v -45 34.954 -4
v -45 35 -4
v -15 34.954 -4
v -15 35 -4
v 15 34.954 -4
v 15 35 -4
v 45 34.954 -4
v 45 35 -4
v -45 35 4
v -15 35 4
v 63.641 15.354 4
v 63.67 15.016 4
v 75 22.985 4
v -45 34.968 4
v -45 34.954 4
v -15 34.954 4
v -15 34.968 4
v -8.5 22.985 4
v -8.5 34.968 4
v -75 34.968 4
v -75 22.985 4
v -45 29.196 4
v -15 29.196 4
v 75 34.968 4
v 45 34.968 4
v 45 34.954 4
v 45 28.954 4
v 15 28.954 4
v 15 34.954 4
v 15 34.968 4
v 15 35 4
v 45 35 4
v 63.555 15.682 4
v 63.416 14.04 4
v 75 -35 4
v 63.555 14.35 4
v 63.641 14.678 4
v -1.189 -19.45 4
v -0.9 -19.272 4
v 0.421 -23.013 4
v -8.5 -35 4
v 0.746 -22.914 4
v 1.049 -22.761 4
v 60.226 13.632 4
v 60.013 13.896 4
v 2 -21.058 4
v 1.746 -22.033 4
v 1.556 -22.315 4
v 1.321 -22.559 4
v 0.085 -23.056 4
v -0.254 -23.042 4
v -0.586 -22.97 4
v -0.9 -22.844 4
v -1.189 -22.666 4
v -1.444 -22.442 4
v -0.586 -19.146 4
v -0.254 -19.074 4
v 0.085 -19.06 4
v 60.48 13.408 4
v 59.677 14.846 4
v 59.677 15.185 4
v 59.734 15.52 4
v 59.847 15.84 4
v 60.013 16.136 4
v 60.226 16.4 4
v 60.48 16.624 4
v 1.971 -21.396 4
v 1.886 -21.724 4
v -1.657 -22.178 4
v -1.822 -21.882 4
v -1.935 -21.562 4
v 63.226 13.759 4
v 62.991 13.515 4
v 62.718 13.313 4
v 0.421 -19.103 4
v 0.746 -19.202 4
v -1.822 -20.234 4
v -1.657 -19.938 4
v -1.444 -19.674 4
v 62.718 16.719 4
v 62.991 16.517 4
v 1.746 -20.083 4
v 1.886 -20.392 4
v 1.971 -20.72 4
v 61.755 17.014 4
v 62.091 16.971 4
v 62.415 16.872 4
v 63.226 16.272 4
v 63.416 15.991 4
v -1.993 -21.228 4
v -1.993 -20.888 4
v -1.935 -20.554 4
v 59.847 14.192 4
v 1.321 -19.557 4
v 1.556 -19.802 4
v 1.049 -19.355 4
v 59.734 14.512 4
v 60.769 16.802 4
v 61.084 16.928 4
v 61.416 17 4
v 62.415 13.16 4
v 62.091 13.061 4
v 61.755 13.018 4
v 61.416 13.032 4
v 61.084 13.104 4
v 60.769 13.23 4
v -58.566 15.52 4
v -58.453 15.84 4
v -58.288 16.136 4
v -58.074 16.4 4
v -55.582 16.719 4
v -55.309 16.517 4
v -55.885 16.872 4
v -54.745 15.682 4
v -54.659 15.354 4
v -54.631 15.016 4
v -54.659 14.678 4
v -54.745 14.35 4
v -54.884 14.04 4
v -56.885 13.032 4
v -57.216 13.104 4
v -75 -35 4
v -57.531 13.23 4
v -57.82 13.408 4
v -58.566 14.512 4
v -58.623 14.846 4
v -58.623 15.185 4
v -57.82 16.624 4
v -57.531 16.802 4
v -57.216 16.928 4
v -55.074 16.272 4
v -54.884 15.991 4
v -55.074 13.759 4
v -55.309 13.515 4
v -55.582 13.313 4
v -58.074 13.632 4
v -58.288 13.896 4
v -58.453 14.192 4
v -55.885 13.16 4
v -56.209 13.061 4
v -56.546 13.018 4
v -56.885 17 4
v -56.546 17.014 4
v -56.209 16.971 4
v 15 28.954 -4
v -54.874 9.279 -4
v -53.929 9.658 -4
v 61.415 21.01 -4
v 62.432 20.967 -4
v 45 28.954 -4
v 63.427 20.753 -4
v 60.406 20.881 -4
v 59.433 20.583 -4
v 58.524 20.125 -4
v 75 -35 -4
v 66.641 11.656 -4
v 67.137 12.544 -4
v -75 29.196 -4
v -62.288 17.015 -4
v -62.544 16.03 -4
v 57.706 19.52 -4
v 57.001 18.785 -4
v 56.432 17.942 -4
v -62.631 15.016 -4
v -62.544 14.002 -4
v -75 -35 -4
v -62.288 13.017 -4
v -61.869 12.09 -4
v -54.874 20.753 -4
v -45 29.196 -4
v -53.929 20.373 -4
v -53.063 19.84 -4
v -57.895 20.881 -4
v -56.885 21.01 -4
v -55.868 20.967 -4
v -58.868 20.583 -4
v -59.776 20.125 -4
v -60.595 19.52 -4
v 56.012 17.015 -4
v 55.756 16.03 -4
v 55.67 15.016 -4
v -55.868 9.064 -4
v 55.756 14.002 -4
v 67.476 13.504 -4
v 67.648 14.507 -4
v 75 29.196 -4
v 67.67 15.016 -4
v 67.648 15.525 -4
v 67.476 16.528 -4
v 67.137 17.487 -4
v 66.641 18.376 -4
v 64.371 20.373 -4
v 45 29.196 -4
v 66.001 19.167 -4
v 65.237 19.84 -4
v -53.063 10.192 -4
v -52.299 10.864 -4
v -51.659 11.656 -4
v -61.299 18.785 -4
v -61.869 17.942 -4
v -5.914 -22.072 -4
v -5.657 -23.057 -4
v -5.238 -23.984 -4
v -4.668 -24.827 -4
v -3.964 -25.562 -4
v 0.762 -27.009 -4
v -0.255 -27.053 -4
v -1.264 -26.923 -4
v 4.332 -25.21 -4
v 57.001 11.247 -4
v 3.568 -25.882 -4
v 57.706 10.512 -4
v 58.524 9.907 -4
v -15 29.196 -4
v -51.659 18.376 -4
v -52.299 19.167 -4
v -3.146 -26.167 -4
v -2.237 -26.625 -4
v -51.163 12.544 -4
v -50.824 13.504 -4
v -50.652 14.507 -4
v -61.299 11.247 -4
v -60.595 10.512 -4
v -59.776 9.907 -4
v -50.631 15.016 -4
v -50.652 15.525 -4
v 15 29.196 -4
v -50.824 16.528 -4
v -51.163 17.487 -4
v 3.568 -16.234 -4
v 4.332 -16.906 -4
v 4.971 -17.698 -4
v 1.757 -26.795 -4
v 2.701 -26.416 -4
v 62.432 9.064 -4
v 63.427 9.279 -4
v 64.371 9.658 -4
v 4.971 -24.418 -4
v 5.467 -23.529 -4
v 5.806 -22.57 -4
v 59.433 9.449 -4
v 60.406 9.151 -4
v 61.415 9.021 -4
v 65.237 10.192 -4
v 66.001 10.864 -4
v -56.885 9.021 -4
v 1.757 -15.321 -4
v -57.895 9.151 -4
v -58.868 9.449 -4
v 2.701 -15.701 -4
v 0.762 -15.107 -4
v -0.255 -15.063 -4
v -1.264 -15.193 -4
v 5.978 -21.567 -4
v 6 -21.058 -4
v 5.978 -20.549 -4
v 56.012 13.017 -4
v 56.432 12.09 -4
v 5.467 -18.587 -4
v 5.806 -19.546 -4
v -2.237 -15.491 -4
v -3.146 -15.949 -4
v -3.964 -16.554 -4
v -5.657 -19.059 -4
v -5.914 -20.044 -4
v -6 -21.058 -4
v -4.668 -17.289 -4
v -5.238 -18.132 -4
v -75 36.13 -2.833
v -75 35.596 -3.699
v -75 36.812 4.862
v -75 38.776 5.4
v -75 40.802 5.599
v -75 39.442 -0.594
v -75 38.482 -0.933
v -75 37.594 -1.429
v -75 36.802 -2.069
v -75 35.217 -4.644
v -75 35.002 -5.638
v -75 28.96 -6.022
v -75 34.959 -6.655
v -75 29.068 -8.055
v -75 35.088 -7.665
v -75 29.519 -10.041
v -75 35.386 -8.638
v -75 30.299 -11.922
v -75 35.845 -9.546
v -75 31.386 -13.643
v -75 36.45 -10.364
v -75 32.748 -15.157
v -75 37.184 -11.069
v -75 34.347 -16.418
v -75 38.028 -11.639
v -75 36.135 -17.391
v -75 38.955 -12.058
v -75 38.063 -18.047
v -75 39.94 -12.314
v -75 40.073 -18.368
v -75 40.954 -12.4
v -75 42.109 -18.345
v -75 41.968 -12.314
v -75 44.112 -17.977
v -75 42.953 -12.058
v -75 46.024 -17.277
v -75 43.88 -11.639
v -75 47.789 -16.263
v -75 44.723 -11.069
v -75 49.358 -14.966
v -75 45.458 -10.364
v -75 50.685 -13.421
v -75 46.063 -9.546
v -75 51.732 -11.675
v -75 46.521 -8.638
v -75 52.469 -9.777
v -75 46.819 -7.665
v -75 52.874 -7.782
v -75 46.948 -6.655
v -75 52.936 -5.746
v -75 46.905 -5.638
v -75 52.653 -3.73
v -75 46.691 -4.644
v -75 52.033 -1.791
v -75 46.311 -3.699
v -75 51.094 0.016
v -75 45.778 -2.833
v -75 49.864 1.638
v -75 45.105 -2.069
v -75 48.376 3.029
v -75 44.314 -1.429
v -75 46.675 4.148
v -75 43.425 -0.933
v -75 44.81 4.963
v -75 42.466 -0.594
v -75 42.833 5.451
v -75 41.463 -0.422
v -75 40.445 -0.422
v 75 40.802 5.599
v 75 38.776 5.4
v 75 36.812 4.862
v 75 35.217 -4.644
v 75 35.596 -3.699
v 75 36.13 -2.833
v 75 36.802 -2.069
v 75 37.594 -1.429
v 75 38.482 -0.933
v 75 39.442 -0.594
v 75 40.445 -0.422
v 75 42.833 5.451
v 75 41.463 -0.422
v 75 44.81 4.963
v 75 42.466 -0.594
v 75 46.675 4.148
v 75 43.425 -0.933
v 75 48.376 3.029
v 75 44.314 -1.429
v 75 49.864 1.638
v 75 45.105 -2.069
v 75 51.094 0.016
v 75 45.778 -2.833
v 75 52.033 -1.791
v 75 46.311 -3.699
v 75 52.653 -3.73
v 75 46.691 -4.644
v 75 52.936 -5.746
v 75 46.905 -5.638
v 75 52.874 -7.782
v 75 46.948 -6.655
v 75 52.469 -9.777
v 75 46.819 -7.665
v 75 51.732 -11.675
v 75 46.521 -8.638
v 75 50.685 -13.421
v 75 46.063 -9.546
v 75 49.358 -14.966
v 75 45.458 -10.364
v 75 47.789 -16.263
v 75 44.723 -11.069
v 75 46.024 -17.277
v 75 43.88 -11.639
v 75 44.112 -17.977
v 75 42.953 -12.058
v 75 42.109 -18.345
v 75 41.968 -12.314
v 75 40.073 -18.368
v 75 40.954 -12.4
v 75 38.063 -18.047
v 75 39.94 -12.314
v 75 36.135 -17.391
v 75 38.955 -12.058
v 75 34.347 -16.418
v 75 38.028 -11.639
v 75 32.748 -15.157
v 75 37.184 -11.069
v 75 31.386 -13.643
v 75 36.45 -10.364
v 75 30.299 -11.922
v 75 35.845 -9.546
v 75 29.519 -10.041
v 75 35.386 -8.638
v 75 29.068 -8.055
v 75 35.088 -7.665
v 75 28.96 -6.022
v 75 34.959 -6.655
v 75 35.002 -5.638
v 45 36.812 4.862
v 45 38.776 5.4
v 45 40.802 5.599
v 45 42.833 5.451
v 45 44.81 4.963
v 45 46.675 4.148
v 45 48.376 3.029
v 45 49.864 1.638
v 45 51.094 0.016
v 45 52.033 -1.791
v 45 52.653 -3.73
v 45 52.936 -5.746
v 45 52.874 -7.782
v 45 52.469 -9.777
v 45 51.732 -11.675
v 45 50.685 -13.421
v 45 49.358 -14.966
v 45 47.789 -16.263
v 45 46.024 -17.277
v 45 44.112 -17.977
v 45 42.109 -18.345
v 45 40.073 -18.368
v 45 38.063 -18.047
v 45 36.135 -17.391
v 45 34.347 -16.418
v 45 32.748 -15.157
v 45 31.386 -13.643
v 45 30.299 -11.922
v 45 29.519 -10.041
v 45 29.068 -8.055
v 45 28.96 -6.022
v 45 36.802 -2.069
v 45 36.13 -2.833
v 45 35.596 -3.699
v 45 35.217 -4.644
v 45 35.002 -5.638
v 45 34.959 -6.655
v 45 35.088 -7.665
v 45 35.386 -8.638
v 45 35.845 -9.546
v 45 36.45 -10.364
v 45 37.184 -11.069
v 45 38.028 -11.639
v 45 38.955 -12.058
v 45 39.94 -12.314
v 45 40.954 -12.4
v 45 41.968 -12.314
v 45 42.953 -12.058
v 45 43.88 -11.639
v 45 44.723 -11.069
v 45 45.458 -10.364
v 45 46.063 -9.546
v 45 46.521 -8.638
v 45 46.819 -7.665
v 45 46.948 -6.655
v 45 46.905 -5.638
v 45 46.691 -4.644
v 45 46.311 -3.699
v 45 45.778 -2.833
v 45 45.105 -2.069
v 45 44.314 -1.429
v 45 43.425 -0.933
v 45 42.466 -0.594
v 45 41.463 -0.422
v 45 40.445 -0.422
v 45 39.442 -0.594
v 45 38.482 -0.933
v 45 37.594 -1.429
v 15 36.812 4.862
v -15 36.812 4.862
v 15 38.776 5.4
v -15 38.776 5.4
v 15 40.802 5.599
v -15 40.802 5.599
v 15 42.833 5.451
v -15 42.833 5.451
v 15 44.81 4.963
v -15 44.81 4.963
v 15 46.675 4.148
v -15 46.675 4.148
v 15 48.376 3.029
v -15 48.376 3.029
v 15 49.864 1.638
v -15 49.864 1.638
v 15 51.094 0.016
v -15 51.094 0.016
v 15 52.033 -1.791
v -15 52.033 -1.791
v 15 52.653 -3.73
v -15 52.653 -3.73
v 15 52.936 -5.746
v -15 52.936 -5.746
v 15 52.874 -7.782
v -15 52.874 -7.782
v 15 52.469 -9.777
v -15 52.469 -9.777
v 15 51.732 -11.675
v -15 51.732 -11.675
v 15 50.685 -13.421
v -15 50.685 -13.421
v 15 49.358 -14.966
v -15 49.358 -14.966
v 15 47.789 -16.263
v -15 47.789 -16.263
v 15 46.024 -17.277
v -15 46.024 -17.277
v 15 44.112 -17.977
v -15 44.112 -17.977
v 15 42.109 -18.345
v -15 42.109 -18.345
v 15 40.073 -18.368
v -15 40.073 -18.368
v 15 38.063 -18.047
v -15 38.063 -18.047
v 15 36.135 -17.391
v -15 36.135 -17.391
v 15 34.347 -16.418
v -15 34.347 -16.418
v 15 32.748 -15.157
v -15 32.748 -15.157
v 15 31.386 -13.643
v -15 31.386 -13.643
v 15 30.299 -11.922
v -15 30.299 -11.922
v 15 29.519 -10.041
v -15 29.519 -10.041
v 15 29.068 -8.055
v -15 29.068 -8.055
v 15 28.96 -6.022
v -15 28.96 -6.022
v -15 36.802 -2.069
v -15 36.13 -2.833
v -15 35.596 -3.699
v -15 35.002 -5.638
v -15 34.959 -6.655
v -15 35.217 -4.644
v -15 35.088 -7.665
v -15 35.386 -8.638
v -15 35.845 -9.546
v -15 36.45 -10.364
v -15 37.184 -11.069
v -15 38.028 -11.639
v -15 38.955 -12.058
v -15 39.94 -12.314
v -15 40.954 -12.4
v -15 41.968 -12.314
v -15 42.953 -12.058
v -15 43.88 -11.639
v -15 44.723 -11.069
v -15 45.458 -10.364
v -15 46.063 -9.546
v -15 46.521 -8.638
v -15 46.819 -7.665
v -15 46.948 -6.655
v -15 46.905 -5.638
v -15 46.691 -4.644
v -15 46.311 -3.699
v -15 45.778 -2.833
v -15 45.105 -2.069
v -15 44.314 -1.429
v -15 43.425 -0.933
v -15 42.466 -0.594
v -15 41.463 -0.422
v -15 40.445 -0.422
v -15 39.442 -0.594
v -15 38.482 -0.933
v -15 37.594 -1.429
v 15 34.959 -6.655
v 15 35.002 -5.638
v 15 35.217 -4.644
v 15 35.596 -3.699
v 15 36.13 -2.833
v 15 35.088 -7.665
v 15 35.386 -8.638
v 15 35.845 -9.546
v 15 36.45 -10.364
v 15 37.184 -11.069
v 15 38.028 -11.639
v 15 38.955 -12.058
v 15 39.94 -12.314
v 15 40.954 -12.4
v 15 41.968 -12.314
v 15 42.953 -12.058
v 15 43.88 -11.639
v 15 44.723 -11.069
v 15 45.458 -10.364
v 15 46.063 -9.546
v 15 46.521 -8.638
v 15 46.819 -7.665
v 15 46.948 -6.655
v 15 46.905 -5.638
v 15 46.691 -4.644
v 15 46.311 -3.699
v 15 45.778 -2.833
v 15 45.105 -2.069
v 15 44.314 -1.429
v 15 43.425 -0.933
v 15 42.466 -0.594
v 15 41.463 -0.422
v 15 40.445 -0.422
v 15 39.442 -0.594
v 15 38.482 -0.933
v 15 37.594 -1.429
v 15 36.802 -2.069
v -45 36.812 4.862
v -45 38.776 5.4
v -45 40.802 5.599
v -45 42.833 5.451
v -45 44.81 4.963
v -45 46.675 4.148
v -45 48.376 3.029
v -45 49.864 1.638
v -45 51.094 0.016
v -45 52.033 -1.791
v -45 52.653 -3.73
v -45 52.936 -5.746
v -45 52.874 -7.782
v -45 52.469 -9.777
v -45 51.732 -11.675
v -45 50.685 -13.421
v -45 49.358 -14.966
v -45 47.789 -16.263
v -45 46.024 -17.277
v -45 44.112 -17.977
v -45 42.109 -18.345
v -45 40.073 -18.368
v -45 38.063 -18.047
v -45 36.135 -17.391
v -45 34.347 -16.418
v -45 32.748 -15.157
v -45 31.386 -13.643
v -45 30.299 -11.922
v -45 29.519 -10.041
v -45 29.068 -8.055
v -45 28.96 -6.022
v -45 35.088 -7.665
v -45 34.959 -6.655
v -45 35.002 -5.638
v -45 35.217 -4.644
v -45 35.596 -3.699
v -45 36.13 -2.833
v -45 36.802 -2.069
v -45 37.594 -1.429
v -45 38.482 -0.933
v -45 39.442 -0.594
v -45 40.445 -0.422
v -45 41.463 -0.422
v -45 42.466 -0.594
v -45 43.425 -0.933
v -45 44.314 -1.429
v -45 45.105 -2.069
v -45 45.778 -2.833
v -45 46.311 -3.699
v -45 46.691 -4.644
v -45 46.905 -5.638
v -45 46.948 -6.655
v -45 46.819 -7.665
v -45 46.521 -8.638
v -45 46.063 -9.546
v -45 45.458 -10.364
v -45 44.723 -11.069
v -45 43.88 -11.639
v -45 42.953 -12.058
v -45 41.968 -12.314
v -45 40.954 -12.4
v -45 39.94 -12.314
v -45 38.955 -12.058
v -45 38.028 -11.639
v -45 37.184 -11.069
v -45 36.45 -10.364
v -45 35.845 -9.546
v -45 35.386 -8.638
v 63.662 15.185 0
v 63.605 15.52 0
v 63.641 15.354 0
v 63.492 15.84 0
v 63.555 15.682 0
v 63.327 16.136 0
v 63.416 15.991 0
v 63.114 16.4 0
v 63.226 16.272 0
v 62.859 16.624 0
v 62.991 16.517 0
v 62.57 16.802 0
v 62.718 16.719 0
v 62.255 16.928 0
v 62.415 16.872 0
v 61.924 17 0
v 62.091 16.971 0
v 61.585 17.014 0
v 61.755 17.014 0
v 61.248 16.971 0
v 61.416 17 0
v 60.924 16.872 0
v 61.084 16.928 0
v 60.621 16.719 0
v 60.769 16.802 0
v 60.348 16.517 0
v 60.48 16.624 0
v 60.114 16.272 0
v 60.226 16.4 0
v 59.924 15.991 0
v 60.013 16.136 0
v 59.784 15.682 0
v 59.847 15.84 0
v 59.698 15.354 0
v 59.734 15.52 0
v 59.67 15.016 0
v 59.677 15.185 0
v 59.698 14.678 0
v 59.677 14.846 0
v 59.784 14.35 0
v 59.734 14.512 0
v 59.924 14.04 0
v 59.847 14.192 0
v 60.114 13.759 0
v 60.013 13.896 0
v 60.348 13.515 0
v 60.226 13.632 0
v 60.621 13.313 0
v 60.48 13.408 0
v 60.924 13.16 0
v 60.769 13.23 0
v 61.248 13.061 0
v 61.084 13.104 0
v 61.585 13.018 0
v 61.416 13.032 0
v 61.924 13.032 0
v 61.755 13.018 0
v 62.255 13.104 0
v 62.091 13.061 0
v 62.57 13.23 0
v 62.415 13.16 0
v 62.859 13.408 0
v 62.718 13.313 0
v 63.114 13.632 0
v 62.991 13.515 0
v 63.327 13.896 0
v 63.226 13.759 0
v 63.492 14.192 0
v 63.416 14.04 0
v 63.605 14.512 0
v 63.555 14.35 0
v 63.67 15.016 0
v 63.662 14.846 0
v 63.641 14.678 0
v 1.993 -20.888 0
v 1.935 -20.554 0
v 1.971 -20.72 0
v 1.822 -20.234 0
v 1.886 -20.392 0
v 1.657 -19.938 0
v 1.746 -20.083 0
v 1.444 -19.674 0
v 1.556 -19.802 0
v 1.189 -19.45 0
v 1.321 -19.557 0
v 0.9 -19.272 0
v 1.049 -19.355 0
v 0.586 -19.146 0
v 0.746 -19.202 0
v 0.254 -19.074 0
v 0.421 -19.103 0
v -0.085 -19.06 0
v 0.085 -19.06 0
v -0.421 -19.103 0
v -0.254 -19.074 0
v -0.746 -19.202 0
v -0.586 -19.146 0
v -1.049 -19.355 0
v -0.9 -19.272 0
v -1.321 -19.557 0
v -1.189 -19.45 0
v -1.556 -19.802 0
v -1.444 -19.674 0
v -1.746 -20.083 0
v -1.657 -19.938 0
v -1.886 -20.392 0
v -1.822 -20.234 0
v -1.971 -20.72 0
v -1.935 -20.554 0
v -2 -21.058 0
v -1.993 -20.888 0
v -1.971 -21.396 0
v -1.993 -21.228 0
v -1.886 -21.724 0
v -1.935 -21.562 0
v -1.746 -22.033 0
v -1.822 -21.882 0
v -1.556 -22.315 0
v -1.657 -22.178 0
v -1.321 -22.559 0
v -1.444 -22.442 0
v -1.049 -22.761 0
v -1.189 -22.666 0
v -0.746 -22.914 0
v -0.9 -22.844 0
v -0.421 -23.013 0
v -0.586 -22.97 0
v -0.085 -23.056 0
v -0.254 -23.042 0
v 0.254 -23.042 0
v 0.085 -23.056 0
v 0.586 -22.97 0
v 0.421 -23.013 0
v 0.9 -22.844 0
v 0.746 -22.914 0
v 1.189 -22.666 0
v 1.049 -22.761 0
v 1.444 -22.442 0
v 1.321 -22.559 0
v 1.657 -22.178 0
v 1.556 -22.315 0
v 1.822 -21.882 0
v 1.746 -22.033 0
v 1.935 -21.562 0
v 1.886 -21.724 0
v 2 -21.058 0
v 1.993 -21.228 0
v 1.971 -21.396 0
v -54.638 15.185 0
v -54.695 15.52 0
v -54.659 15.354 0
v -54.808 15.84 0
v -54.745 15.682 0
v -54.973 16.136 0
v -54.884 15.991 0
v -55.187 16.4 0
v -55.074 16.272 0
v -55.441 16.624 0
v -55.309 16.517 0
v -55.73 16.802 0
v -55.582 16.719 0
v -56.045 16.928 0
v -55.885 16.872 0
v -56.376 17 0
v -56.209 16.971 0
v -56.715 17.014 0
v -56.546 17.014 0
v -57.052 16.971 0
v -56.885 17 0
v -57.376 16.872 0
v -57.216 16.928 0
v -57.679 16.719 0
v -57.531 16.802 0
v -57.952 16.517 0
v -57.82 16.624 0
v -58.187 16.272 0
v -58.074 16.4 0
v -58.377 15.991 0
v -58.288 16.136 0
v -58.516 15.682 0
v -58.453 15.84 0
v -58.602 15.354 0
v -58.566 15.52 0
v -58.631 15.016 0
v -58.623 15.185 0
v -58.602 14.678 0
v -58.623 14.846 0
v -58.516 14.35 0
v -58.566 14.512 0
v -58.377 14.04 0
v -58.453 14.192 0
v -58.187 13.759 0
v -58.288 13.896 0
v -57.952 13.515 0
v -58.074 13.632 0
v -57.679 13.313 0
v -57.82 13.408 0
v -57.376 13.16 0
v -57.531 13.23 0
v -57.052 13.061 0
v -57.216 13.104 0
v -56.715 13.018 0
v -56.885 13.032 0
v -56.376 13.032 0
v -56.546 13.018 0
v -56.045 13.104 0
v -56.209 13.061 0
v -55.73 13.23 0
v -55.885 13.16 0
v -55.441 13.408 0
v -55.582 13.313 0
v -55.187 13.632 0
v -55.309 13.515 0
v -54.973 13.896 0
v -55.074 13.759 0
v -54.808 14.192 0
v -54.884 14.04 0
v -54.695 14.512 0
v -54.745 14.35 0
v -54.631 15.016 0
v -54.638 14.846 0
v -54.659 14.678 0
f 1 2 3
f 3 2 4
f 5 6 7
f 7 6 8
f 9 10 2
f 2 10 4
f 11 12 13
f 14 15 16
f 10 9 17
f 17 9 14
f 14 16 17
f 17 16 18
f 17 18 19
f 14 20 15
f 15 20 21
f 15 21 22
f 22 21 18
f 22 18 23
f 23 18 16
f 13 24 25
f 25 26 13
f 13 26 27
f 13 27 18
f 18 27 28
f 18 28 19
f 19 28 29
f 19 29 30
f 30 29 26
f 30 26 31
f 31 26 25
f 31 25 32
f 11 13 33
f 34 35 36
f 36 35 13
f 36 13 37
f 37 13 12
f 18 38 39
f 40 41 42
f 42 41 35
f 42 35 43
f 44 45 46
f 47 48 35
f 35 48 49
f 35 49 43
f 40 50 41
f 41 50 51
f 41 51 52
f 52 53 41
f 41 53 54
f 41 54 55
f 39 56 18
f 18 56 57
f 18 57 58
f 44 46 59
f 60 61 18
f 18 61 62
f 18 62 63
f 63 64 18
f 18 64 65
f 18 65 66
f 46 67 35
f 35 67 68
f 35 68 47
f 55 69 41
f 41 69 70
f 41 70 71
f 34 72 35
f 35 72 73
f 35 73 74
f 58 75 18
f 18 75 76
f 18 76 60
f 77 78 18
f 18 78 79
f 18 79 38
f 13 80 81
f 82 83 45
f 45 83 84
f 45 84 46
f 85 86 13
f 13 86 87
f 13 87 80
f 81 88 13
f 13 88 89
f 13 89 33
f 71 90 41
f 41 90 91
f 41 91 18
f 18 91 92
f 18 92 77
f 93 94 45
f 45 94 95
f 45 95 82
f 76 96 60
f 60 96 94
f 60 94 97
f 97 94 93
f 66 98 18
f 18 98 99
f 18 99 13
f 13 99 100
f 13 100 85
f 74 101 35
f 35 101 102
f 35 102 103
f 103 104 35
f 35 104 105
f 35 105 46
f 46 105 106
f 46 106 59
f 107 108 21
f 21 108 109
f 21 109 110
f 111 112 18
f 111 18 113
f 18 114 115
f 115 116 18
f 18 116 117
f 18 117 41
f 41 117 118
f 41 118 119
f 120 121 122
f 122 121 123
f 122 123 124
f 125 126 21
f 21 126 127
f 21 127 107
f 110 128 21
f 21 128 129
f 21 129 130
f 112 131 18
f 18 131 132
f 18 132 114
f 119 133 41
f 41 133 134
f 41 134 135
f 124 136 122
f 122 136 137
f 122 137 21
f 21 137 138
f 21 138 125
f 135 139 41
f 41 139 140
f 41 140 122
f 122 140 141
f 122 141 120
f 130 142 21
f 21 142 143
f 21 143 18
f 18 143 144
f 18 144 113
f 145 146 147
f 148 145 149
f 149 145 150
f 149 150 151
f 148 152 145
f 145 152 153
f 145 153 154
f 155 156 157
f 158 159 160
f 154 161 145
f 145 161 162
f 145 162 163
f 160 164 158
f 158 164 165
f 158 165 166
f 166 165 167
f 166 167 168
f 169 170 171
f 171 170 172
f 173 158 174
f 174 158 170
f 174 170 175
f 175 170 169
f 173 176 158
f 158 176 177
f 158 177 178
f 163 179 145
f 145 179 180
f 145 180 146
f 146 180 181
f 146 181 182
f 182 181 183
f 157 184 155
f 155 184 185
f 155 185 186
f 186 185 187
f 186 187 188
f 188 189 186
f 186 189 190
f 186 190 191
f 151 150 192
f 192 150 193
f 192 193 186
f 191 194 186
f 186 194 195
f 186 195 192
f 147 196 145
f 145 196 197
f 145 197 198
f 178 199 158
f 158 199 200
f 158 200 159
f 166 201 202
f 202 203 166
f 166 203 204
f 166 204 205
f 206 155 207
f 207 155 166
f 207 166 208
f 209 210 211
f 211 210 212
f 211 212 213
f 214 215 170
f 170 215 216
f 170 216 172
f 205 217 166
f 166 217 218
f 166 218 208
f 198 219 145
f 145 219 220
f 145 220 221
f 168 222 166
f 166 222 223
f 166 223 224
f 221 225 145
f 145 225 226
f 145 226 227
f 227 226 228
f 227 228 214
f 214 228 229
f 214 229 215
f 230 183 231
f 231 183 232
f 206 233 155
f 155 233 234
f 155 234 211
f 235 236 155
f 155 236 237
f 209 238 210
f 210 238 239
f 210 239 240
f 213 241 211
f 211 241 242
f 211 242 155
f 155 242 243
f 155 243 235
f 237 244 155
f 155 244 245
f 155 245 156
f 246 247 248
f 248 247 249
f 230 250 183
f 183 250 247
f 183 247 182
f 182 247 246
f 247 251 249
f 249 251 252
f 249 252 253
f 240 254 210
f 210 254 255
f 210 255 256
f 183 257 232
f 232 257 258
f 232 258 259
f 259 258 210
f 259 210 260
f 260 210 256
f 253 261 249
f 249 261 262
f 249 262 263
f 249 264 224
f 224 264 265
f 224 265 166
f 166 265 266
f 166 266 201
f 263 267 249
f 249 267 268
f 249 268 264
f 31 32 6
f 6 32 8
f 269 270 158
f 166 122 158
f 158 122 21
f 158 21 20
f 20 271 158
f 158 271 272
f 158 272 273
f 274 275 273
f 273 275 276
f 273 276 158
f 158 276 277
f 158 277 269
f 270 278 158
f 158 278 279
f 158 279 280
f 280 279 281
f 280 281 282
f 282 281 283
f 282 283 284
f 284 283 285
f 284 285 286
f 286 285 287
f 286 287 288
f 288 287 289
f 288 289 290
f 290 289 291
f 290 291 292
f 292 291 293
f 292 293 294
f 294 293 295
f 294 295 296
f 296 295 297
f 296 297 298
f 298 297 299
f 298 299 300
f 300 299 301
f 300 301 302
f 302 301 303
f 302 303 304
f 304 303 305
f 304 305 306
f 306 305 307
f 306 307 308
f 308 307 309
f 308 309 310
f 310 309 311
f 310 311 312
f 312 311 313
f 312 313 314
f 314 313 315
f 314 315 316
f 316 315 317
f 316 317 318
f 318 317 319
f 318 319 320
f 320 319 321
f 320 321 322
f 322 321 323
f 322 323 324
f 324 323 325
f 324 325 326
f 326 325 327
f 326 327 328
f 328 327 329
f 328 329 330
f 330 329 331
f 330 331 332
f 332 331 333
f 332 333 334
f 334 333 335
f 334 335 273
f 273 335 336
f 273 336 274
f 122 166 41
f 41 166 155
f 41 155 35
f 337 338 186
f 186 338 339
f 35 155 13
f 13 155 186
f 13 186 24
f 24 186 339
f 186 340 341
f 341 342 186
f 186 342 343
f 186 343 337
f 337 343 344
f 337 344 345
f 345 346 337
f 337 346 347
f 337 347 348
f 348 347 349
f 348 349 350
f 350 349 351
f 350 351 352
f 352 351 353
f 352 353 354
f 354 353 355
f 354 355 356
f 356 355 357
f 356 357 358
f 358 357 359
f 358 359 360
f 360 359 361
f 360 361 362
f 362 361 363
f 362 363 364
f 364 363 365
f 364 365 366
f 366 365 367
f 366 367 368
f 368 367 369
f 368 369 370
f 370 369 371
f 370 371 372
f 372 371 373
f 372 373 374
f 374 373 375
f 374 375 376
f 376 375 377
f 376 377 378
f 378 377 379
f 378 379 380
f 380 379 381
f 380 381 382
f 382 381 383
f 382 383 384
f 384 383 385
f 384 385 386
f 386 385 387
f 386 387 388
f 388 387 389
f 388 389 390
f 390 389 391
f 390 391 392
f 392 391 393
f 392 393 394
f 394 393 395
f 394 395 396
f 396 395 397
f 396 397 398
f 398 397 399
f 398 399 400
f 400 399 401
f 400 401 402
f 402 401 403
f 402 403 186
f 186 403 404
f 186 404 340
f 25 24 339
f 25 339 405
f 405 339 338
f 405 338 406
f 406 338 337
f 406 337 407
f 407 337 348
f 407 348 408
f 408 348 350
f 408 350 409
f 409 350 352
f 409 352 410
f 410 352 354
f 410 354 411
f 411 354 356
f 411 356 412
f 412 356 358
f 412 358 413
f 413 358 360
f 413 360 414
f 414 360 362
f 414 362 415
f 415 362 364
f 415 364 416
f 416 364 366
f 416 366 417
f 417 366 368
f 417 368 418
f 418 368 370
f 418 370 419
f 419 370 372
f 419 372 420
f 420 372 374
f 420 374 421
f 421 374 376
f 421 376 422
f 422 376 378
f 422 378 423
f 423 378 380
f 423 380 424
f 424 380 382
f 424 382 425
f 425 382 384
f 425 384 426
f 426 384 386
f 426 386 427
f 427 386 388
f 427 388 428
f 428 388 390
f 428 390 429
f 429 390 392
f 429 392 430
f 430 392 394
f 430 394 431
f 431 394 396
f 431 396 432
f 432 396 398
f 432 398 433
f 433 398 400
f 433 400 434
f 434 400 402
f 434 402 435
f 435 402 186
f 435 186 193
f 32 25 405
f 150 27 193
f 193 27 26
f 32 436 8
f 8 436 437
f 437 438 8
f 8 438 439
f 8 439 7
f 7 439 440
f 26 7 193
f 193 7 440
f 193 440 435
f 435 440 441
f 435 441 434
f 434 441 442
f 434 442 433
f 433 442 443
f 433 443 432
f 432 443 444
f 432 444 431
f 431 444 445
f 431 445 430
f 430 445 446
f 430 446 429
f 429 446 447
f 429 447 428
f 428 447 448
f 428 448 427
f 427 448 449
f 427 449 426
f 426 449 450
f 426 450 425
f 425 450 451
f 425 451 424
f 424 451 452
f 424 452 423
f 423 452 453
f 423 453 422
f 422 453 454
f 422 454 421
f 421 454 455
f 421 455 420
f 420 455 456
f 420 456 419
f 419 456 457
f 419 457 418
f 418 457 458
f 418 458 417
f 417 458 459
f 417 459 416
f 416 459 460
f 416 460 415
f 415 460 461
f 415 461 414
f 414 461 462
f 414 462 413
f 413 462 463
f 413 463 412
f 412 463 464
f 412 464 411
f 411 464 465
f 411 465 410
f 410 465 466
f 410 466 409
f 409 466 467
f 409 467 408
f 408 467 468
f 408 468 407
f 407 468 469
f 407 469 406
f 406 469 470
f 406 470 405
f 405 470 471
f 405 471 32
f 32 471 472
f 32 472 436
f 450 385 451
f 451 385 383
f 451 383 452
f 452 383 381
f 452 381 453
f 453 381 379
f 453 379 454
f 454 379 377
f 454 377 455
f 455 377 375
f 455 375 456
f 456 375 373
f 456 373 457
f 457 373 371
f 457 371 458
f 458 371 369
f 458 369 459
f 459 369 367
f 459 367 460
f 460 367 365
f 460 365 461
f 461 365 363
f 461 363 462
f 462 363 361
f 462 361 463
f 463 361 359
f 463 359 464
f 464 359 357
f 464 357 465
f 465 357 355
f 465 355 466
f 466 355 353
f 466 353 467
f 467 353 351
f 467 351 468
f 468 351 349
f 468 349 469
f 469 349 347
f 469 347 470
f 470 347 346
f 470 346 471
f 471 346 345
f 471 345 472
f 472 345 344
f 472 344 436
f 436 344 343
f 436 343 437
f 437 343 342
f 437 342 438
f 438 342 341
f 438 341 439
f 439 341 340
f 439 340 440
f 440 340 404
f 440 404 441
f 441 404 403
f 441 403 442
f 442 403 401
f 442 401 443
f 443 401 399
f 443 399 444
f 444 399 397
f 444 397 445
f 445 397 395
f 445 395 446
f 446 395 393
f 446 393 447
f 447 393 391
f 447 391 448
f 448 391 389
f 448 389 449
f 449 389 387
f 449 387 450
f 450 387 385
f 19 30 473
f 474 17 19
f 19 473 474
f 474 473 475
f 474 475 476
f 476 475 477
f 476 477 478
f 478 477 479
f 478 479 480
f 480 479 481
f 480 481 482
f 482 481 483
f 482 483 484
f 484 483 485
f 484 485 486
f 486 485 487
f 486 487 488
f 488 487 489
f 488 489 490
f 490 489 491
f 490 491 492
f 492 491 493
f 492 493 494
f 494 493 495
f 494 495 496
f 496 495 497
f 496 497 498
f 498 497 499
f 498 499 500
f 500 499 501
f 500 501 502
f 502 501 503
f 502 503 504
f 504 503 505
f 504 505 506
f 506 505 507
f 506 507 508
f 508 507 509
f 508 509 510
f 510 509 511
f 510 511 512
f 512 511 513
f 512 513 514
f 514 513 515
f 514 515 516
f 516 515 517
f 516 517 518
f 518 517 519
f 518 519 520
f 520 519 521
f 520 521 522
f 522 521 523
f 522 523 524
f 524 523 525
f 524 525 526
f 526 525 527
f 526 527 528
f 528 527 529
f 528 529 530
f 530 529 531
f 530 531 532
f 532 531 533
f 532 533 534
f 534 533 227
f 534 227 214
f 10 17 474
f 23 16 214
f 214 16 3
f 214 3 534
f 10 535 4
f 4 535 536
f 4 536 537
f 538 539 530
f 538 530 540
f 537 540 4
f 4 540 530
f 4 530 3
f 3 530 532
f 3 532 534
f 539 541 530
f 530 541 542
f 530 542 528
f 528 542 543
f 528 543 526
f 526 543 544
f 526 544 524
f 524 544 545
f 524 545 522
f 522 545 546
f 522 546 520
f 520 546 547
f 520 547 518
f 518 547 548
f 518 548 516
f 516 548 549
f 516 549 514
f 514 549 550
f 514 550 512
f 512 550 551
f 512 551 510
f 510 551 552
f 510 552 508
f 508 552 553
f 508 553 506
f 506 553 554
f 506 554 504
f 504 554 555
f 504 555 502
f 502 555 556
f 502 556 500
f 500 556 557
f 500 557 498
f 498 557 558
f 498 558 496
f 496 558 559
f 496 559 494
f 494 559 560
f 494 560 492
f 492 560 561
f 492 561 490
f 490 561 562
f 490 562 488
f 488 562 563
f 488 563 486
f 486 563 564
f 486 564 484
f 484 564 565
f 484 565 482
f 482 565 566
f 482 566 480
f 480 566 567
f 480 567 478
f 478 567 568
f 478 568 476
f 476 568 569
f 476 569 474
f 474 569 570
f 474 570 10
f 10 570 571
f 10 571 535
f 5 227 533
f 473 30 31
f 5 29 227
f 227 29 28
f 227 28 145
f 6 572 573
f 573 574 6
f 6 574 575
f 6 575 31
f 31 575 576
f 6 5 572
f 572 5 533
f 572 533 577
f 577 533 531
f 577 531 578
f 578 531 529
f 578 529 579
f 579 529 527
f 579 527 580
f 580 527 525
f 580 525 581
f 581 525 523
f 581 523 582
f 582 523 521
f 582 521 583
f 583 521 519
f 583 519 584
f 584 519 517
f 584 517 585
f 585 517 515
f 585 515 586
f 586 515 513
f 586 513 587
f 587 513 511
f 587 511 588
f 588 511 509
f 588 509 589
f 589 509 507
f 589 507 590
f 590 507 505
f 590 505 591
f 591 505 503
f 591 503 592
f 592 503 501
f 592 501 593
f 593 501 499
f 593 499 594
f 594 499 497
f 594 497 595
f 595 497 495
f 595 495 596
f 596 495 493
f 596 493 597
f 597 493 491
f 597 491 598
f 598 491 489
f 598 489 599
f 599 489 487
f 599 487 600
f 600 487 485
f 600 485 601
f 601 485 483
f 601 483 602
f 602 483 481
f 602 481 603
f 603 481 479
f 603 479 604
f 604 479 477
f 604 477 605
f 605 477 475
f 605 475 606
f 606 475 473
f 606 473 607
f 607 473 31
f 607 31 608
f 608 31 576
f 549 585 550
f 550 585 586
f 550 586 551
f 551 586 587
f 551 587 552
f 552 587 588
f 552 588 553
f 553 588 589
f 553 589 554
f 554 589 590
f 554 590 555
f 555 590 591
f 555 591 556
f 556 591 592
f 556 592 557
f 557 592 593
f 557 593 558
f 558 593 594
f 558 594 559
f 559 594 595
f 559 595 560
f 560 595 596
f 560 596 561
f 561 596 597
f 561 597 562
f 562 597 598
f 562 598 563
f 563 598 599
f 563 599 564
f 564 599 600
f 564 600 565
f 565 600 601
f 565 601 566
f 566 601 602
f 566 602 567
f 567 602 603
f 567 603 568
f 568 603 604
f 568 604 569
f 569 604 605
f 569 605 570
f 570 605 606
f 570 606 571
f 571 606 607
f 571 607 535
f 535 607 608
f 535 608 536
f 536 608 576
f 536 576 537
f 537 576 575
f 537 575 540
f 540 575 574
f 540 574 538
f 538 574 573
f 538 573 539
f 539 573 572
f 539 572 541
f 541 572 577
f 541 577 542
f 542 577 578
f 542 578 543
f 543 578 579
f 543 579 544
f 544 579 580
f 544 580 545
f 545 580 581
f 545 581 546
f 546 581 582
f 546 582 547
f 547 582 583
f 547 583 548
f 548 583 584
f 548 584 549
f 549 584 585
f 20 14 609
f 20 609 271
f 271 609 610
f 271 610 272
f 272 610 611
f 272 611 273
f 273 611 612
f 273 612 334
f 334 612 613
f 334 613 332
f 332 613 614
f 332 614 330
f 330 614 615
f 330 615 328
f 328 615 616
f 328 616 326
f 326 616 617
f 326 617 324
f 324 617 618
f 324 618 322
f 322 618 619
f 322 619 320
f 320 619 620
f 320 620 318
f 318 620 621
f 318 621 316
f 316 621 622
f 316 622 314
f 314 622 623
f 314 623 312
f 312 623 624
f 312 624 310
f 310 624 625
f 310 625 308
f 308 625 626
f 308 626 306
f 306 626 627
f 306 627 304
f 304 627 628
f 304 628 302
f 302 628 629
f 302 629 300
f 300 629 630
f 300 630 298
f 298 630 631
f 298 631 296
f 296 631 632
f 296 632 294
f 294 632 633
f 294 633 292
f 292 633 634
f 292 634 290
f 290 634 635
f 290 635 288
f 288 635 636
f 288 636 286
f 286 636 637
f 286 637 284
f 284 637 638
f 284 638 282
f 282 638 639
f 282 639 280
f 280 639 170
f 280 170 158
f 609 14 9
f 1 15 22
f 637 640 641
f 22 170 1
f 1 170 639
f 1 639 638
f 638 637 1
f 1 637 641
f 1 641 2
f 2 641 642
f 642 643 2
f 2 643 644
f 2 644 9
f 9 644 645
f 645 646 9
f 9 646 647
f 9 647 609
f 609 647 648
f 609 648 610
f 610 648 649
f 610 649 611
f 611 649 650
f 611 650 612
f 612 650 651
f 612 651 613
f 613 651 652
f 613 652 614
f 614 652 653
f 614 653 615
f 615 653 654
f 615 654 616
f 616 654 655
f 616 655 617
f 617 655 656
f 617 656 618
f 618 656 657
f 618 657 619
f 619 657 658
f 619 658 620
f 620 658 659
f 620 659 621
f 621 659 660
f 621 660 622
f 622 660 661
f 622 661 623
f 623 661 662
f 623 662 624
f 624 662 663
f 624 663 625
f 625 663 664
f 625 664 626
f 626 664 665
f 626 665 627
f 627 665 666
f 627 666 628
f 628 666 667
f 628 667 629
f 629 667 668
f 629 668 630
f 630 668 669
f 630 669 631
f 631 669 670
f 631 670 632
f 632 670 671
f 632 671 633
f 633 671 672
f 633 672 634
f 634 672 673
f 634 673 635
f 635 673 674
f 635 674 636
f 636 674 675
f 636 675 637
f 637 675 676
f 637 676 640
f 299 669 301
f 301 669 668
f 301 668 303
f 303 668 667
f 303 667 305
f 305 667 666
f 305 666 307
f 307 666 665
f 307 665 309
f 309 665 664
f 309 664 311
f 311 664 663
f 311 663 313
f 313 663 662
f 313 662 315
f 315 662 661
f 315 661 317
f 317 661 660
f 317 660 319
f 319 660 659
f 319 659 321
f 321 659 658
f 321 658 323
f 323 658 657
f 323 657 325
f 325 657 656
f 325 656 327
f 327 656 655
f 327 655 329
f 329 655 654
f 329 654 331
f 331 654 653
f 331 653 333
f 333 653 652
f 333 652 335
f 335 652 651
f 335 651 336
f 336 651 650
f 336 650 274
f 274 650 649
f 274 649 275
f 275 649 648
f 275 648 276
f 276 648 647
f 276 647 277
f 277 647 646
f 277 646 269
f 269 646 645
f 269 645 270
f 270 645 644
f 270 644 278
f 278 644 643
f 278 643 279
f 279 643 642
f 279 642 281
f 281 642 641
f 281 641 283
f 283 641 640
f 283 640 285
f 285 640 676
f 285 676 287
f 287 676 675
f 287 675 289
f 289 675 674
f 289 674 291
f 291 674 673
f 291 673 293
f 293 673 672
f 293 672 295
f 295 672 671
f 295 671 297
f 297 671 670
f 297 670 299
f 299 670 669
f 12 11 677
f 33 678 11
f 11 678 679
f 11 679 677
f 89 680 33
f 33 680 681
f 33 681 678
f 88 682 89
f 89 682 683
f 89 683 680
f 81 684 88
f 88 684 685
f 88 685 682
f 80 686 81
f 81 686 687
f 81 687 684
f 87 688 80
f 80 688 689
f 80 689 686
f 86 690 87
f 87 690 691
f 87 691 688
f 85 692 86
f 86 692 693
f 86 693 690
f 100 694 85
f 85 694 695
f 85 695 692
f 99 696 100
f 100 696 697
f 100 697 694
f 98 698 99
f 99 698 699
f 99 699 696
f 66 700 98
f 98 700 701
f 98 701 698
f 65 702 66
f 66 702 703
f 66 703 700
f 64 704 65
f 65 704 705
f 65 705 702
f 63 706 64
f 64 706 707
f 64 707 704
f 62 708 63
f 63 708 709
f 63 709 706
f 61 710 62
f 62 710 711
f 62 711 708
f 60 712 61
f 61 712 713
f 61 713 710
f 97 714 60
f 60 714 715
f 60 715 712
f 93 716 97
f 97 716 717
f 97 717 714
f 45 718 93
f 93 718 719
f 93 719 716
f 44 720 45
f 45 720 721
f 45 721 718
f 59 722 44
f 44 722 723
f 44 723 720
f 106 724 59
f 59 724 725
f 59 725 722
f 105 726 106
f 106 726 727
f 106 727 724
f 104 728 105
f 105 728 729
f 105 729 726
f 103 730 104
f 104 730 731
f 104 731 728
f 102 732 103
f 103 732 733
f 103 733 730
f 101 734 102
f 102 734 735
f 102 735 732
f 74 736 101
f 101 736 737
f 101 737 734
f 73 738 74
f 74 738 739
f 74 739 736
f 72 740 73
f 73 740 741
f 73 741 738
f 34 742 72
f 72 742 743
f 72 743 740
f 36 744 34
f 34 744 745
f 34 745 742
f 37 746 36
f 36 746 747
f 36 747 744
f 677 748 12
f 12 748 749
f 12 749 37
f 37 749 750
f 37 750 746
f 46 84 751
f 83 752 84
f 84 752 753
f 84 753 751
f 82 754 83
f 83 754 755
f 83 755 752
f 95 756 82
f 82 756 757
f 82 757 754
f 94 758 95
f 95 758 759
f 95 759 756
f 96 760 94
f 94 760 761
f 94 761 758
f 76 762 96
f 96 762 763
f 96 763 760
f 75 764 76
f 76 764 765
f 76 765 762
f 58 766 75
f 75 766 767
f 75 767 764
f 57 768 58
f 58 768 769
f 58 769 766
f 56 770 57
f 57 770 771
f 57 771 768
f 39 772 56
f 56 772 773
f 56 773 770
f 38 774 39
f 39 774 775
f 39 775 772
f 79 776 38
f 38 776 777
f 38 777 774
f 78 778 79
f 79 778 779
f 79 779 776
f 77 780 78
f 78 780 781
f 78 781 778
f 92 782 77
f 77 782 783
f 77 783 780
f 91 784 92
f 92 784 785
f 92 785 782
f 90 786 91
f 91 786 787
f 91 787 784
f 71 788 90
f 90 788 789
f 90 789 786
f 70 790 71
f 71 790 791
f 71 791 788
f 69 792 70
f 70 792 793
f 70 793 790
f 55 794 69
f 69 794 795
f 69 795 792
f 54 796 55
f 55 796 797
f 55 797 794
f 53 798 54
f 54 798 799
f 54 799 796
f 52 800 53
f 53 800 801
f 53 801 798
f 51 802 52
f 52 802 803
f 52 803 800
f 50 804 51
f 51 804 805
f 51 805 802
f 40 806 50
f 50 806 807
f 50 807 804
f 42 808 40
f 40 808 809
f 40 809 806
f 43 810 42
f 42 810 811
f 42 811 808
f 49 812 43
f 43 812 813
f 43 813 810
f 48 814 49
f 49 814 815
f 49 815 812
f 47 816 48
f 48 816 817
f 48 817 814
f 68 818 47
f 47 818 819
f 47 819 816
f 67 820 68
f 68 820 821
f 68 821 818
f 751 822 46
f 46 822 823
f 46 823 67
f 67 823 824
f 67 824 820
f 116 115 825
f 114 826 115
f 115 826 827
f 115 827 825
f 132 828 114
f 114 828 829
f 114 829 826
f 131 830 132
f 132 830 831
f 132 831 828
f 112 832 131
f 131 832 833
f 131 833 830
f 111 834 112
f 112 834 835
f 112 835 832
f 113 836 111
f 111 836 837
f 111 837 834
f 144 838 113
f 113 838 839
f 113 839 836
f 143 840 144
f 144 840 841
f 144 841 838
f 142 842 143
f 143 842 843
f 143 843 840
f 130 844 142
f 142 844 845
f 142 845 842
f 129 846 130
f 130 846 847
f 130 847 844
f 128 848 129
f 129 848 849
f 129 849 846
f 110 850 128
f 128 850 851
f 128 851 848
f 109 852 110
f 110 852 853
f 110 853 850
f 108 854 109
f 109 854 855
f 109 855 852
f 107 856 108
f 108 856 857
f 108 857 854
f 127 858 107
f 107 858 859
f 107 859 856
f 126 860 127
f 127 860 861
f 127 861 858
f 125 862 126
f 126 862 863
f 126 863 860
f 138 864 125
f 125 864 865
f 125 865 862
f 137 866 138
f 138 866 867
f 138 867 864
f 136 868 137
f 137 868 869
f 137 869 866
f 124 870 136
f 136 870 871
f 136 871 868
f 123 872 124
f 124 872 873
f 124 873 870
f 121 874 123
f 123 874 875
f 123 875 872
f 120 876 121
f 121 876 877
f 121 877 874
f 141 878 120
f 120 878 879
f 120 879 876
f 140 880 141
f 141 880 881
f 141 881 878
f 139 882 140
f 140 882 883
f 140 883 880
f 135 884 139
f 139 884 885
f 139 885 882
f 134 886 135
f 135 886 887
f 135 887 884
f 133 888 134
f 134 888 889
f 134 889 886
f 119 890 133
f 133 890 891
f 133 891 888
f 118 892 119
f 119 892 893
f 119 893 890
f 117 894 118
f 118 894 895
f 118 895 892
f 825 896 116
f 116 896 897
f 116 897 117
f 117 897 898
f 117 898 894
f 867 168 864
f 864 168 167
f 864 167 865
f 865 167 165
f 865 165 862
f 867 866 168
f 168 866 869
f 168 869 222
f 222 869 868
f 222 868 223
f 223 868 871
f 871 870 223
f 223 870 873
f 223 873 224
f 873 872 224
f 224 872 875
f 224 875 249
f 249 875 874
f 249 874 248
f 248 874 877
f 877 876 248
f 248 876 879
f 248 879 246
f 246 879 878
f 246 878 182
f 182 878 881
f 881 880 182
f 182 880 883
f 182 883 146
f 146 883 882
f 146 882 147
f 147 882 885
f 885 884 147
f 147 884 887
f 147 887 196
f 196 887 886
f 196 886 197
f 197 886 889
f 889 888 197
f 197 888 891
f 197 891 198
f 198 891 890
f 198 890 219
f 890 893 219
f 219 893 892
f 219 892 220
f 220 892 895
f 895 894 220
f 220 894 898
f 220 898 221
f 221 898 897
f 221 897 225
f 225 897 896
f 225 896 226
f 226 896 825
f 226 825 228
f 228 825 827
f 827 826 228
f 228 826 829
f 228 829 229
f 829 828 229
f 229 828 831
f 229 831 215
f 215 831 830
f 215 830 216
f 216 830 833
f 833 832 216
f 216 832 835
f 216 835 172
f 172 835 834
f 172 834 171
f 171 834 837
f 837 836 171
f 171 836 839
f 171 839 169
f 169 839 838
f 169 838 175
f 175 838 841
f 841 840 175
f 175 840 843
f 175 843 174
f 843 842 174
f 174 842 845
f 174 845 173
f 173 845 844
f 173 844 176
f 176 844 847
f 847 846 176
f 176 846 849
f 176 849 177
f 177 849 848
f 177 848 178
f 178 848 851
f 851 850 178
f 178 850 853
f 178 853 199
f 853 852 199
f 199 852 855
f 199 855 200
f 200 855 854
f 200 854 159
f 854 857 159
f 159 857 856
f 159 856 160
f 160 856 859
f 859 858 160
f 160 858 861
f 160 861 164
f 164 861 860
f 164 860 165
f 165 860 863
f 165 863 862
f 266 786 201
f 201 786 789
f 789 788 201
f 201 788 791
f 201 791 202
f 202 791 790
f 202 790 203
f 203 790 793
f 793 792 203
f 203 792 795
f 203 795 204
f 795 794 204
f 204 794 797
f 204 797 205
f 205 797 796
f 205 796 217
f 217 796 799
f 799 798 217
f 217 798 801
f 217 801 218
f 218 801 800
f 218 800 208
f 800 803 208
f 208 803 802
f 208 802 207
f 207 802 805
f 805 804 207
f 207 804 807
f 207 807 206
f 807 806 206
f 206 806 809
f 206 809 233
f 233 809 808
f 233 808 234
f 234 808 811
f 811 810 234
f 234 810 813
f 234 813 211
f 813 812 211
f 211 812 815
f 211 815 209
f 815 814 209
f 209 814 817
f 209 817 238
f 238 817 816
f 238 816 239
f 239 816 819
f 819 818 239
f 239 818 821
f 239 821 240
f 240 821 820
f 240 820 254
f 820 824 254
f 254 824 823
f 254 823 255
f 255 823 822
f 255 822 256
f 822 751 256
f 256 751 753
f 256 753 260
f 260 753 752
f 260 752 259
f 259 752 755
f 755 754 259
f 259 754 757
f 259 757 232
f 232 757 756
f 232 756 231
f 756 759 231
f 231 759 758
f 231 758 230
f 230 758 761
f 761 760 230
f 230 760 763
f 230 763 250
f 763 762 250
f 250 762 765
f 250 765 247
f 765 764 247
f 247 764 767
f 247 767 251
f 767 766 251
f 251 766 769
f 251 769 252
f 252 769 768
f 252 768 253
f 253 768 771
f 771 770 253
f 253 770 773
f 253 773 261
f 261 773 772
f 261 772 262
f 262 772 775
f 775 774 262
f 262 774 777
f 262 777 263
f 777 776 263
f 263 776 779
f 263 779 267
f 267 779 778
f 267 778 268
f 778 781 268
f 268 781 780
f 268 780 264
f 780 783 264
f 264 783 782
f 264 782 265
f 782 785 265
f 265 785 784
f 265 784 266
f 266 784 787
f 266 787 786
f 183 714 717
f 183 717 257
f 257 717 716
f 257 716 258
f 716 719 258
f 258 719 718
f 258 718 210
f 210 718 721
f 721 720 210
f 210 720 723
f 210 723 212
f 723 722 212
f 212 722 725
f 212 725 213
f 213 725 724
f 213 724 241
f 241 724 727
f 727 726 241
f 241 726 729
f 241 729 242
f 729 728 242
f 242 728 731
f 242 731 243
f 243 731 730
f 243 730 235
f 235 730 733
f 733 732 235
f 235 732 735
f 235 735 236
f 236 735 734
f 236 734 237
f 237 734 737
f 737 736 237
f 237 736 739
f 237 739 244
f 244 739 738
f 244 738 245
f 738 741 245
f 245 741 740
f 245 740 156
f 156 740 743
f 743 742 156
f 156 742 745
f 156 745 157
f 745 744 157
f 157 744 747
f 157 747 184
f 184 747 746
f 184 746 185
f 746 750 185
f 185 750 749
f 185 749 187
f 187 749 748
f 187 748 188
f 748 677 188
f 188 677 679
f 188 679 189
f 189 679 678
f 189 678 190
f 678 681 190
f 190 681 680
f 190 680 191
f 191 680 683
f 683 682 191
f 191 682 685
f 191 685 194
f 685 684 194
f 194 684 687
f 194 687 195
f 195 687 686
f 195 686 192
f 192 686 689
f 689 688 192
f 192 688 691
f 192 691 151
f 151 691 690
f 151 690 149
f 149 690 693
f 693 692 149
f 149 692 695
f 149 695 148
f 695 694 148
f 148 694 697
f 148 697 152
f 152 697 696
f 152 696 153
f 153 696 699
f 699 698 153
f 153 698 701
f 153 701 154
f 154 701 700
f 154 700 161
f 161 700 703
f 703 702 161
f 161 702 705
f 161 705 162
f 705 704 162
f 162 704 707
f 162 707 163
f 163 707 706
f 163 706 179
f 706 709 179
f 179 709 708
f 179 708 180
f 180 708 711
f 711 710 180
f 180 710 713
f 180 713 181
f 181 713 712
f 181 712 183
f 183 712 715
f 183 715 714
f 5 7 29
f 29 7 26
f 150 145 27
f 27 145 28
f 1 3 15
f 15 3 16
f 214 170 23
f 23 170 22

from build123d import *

# Parameters (mm, degrees)
SKETCH1_W           = 150
SKETCH1_H           = 70
BOSS_EXTRUDE1_DEPTH = 4
SKETCH4_R           = 12
SKETCH4_R_2         = 6
BOSS_EXTRUDE6_DEPTH = 30
LPATTERN1_COUNT     = 3
LPATTERN1_PITCH     = 60
SKETCH7_R           = 2
CUT_EXTRUDE2_DEPTH  = 30
CHAMFER3_SIZE       = 4
SKETCH8_W           = 30
SKETCH8_H           = 6
CUT_EXTRUDE3_DEPTH  = 10
SKETCH9_W           = 30
SKETCH9_H           = 5.757460858
CUT_EXTRUDE4_DEPTH  = 10


with BuildPart() as part:
    # Sketch1 → Boss-Extrude1 (new body, symmetric)
    with BuildSketch(Plane.XY):
        Rectangle(SKETCH1_W, SKETCH1_H)
    extrude(amount=BOSS_EXTRUDE1_DEPTH, both=True)

    # Sketch4 → Boss-Extrude6 (add)
    with BuildSketch(Plane(origin=(75, 0, 0), x_dir=(0, 0, -1), z_dir=(1, 0, 0))):
        with Locations((6.400440408, 40.953753189)):
            Circle(SKETCH4_R)
        with Locations((6.400440408, 40.953753189)):
            Circle(SKETCH4_R_2, mode=Mode.SUBTRACT)
    boss_extrude6 = extrude(amount=-BOSS_EXTRUDE6_DEPTH)

    # LPattern1: Boss-Extrude6 ×3
    with Locations(*[(-i * LPATTERN1_PITCH, 0, 0) for i in range(1, LPATTERN1_COUNT)]):
        add(boss_extrude6)

    # Sketch7 → Cut-Extrude2 (cut)
    with BuildSketch(Plane.XY.offset(4)):
        with Locations((-56.630501899, 15.015863732)):
            Circle(SKETCH7_R)
        with Locations((0, -21.058085924)):
            Circle(SKETCH7_R)
        with Locations((61.669656729, 15.015863732)):
            Circle(SKETCH7_R)
    extrude(amount=-CUT_EXTRUDE2_DEPTH, mode=Mode.SUBTRACT)

    # Chamfer3
    chamfer3_edges = [part.edges().sort_by_distance(p)[0] for p in [
        (-58.630501899, 15.015863732, -4),
        (-2, -21.058085924, -4),
        (59.669656729, 15.015863732, -4),
    ]]
    chamfer(chamfer3_edges, length=CHAMFER3_SIZE)

    # Sketch8 → Cut-Extrude3 (cut)
    with BuildSketch(Plane(origin=(0, 0, -4), x_dir=(-1, 0, 0), z_dir=(0, 0, -1))):
        with Locations((-30, 31.953753189)):
            Rectangle(SKETCH8_W, SKETCH8_H)
    extrude(amount=-CUT_EXTRUDE3_DEPTH, mode=Mode.SUBTRACT)

    # Sketch9 → Cut-Extrude4 (cut)
    with BuildSketch(Plane(origin=(0, 0, -4), x_dir=(-1, 0, 0), z_dir=(0, 0, -1))):
        with Locations((30, 32.07502276)):
            Rectangle(SKETCH9_W, SKETCH9_H)
    extrude(amount=-CUT_EXTRUDE4_DEPTH, mode=Mode.SUBTRACT)


solid = part.part
